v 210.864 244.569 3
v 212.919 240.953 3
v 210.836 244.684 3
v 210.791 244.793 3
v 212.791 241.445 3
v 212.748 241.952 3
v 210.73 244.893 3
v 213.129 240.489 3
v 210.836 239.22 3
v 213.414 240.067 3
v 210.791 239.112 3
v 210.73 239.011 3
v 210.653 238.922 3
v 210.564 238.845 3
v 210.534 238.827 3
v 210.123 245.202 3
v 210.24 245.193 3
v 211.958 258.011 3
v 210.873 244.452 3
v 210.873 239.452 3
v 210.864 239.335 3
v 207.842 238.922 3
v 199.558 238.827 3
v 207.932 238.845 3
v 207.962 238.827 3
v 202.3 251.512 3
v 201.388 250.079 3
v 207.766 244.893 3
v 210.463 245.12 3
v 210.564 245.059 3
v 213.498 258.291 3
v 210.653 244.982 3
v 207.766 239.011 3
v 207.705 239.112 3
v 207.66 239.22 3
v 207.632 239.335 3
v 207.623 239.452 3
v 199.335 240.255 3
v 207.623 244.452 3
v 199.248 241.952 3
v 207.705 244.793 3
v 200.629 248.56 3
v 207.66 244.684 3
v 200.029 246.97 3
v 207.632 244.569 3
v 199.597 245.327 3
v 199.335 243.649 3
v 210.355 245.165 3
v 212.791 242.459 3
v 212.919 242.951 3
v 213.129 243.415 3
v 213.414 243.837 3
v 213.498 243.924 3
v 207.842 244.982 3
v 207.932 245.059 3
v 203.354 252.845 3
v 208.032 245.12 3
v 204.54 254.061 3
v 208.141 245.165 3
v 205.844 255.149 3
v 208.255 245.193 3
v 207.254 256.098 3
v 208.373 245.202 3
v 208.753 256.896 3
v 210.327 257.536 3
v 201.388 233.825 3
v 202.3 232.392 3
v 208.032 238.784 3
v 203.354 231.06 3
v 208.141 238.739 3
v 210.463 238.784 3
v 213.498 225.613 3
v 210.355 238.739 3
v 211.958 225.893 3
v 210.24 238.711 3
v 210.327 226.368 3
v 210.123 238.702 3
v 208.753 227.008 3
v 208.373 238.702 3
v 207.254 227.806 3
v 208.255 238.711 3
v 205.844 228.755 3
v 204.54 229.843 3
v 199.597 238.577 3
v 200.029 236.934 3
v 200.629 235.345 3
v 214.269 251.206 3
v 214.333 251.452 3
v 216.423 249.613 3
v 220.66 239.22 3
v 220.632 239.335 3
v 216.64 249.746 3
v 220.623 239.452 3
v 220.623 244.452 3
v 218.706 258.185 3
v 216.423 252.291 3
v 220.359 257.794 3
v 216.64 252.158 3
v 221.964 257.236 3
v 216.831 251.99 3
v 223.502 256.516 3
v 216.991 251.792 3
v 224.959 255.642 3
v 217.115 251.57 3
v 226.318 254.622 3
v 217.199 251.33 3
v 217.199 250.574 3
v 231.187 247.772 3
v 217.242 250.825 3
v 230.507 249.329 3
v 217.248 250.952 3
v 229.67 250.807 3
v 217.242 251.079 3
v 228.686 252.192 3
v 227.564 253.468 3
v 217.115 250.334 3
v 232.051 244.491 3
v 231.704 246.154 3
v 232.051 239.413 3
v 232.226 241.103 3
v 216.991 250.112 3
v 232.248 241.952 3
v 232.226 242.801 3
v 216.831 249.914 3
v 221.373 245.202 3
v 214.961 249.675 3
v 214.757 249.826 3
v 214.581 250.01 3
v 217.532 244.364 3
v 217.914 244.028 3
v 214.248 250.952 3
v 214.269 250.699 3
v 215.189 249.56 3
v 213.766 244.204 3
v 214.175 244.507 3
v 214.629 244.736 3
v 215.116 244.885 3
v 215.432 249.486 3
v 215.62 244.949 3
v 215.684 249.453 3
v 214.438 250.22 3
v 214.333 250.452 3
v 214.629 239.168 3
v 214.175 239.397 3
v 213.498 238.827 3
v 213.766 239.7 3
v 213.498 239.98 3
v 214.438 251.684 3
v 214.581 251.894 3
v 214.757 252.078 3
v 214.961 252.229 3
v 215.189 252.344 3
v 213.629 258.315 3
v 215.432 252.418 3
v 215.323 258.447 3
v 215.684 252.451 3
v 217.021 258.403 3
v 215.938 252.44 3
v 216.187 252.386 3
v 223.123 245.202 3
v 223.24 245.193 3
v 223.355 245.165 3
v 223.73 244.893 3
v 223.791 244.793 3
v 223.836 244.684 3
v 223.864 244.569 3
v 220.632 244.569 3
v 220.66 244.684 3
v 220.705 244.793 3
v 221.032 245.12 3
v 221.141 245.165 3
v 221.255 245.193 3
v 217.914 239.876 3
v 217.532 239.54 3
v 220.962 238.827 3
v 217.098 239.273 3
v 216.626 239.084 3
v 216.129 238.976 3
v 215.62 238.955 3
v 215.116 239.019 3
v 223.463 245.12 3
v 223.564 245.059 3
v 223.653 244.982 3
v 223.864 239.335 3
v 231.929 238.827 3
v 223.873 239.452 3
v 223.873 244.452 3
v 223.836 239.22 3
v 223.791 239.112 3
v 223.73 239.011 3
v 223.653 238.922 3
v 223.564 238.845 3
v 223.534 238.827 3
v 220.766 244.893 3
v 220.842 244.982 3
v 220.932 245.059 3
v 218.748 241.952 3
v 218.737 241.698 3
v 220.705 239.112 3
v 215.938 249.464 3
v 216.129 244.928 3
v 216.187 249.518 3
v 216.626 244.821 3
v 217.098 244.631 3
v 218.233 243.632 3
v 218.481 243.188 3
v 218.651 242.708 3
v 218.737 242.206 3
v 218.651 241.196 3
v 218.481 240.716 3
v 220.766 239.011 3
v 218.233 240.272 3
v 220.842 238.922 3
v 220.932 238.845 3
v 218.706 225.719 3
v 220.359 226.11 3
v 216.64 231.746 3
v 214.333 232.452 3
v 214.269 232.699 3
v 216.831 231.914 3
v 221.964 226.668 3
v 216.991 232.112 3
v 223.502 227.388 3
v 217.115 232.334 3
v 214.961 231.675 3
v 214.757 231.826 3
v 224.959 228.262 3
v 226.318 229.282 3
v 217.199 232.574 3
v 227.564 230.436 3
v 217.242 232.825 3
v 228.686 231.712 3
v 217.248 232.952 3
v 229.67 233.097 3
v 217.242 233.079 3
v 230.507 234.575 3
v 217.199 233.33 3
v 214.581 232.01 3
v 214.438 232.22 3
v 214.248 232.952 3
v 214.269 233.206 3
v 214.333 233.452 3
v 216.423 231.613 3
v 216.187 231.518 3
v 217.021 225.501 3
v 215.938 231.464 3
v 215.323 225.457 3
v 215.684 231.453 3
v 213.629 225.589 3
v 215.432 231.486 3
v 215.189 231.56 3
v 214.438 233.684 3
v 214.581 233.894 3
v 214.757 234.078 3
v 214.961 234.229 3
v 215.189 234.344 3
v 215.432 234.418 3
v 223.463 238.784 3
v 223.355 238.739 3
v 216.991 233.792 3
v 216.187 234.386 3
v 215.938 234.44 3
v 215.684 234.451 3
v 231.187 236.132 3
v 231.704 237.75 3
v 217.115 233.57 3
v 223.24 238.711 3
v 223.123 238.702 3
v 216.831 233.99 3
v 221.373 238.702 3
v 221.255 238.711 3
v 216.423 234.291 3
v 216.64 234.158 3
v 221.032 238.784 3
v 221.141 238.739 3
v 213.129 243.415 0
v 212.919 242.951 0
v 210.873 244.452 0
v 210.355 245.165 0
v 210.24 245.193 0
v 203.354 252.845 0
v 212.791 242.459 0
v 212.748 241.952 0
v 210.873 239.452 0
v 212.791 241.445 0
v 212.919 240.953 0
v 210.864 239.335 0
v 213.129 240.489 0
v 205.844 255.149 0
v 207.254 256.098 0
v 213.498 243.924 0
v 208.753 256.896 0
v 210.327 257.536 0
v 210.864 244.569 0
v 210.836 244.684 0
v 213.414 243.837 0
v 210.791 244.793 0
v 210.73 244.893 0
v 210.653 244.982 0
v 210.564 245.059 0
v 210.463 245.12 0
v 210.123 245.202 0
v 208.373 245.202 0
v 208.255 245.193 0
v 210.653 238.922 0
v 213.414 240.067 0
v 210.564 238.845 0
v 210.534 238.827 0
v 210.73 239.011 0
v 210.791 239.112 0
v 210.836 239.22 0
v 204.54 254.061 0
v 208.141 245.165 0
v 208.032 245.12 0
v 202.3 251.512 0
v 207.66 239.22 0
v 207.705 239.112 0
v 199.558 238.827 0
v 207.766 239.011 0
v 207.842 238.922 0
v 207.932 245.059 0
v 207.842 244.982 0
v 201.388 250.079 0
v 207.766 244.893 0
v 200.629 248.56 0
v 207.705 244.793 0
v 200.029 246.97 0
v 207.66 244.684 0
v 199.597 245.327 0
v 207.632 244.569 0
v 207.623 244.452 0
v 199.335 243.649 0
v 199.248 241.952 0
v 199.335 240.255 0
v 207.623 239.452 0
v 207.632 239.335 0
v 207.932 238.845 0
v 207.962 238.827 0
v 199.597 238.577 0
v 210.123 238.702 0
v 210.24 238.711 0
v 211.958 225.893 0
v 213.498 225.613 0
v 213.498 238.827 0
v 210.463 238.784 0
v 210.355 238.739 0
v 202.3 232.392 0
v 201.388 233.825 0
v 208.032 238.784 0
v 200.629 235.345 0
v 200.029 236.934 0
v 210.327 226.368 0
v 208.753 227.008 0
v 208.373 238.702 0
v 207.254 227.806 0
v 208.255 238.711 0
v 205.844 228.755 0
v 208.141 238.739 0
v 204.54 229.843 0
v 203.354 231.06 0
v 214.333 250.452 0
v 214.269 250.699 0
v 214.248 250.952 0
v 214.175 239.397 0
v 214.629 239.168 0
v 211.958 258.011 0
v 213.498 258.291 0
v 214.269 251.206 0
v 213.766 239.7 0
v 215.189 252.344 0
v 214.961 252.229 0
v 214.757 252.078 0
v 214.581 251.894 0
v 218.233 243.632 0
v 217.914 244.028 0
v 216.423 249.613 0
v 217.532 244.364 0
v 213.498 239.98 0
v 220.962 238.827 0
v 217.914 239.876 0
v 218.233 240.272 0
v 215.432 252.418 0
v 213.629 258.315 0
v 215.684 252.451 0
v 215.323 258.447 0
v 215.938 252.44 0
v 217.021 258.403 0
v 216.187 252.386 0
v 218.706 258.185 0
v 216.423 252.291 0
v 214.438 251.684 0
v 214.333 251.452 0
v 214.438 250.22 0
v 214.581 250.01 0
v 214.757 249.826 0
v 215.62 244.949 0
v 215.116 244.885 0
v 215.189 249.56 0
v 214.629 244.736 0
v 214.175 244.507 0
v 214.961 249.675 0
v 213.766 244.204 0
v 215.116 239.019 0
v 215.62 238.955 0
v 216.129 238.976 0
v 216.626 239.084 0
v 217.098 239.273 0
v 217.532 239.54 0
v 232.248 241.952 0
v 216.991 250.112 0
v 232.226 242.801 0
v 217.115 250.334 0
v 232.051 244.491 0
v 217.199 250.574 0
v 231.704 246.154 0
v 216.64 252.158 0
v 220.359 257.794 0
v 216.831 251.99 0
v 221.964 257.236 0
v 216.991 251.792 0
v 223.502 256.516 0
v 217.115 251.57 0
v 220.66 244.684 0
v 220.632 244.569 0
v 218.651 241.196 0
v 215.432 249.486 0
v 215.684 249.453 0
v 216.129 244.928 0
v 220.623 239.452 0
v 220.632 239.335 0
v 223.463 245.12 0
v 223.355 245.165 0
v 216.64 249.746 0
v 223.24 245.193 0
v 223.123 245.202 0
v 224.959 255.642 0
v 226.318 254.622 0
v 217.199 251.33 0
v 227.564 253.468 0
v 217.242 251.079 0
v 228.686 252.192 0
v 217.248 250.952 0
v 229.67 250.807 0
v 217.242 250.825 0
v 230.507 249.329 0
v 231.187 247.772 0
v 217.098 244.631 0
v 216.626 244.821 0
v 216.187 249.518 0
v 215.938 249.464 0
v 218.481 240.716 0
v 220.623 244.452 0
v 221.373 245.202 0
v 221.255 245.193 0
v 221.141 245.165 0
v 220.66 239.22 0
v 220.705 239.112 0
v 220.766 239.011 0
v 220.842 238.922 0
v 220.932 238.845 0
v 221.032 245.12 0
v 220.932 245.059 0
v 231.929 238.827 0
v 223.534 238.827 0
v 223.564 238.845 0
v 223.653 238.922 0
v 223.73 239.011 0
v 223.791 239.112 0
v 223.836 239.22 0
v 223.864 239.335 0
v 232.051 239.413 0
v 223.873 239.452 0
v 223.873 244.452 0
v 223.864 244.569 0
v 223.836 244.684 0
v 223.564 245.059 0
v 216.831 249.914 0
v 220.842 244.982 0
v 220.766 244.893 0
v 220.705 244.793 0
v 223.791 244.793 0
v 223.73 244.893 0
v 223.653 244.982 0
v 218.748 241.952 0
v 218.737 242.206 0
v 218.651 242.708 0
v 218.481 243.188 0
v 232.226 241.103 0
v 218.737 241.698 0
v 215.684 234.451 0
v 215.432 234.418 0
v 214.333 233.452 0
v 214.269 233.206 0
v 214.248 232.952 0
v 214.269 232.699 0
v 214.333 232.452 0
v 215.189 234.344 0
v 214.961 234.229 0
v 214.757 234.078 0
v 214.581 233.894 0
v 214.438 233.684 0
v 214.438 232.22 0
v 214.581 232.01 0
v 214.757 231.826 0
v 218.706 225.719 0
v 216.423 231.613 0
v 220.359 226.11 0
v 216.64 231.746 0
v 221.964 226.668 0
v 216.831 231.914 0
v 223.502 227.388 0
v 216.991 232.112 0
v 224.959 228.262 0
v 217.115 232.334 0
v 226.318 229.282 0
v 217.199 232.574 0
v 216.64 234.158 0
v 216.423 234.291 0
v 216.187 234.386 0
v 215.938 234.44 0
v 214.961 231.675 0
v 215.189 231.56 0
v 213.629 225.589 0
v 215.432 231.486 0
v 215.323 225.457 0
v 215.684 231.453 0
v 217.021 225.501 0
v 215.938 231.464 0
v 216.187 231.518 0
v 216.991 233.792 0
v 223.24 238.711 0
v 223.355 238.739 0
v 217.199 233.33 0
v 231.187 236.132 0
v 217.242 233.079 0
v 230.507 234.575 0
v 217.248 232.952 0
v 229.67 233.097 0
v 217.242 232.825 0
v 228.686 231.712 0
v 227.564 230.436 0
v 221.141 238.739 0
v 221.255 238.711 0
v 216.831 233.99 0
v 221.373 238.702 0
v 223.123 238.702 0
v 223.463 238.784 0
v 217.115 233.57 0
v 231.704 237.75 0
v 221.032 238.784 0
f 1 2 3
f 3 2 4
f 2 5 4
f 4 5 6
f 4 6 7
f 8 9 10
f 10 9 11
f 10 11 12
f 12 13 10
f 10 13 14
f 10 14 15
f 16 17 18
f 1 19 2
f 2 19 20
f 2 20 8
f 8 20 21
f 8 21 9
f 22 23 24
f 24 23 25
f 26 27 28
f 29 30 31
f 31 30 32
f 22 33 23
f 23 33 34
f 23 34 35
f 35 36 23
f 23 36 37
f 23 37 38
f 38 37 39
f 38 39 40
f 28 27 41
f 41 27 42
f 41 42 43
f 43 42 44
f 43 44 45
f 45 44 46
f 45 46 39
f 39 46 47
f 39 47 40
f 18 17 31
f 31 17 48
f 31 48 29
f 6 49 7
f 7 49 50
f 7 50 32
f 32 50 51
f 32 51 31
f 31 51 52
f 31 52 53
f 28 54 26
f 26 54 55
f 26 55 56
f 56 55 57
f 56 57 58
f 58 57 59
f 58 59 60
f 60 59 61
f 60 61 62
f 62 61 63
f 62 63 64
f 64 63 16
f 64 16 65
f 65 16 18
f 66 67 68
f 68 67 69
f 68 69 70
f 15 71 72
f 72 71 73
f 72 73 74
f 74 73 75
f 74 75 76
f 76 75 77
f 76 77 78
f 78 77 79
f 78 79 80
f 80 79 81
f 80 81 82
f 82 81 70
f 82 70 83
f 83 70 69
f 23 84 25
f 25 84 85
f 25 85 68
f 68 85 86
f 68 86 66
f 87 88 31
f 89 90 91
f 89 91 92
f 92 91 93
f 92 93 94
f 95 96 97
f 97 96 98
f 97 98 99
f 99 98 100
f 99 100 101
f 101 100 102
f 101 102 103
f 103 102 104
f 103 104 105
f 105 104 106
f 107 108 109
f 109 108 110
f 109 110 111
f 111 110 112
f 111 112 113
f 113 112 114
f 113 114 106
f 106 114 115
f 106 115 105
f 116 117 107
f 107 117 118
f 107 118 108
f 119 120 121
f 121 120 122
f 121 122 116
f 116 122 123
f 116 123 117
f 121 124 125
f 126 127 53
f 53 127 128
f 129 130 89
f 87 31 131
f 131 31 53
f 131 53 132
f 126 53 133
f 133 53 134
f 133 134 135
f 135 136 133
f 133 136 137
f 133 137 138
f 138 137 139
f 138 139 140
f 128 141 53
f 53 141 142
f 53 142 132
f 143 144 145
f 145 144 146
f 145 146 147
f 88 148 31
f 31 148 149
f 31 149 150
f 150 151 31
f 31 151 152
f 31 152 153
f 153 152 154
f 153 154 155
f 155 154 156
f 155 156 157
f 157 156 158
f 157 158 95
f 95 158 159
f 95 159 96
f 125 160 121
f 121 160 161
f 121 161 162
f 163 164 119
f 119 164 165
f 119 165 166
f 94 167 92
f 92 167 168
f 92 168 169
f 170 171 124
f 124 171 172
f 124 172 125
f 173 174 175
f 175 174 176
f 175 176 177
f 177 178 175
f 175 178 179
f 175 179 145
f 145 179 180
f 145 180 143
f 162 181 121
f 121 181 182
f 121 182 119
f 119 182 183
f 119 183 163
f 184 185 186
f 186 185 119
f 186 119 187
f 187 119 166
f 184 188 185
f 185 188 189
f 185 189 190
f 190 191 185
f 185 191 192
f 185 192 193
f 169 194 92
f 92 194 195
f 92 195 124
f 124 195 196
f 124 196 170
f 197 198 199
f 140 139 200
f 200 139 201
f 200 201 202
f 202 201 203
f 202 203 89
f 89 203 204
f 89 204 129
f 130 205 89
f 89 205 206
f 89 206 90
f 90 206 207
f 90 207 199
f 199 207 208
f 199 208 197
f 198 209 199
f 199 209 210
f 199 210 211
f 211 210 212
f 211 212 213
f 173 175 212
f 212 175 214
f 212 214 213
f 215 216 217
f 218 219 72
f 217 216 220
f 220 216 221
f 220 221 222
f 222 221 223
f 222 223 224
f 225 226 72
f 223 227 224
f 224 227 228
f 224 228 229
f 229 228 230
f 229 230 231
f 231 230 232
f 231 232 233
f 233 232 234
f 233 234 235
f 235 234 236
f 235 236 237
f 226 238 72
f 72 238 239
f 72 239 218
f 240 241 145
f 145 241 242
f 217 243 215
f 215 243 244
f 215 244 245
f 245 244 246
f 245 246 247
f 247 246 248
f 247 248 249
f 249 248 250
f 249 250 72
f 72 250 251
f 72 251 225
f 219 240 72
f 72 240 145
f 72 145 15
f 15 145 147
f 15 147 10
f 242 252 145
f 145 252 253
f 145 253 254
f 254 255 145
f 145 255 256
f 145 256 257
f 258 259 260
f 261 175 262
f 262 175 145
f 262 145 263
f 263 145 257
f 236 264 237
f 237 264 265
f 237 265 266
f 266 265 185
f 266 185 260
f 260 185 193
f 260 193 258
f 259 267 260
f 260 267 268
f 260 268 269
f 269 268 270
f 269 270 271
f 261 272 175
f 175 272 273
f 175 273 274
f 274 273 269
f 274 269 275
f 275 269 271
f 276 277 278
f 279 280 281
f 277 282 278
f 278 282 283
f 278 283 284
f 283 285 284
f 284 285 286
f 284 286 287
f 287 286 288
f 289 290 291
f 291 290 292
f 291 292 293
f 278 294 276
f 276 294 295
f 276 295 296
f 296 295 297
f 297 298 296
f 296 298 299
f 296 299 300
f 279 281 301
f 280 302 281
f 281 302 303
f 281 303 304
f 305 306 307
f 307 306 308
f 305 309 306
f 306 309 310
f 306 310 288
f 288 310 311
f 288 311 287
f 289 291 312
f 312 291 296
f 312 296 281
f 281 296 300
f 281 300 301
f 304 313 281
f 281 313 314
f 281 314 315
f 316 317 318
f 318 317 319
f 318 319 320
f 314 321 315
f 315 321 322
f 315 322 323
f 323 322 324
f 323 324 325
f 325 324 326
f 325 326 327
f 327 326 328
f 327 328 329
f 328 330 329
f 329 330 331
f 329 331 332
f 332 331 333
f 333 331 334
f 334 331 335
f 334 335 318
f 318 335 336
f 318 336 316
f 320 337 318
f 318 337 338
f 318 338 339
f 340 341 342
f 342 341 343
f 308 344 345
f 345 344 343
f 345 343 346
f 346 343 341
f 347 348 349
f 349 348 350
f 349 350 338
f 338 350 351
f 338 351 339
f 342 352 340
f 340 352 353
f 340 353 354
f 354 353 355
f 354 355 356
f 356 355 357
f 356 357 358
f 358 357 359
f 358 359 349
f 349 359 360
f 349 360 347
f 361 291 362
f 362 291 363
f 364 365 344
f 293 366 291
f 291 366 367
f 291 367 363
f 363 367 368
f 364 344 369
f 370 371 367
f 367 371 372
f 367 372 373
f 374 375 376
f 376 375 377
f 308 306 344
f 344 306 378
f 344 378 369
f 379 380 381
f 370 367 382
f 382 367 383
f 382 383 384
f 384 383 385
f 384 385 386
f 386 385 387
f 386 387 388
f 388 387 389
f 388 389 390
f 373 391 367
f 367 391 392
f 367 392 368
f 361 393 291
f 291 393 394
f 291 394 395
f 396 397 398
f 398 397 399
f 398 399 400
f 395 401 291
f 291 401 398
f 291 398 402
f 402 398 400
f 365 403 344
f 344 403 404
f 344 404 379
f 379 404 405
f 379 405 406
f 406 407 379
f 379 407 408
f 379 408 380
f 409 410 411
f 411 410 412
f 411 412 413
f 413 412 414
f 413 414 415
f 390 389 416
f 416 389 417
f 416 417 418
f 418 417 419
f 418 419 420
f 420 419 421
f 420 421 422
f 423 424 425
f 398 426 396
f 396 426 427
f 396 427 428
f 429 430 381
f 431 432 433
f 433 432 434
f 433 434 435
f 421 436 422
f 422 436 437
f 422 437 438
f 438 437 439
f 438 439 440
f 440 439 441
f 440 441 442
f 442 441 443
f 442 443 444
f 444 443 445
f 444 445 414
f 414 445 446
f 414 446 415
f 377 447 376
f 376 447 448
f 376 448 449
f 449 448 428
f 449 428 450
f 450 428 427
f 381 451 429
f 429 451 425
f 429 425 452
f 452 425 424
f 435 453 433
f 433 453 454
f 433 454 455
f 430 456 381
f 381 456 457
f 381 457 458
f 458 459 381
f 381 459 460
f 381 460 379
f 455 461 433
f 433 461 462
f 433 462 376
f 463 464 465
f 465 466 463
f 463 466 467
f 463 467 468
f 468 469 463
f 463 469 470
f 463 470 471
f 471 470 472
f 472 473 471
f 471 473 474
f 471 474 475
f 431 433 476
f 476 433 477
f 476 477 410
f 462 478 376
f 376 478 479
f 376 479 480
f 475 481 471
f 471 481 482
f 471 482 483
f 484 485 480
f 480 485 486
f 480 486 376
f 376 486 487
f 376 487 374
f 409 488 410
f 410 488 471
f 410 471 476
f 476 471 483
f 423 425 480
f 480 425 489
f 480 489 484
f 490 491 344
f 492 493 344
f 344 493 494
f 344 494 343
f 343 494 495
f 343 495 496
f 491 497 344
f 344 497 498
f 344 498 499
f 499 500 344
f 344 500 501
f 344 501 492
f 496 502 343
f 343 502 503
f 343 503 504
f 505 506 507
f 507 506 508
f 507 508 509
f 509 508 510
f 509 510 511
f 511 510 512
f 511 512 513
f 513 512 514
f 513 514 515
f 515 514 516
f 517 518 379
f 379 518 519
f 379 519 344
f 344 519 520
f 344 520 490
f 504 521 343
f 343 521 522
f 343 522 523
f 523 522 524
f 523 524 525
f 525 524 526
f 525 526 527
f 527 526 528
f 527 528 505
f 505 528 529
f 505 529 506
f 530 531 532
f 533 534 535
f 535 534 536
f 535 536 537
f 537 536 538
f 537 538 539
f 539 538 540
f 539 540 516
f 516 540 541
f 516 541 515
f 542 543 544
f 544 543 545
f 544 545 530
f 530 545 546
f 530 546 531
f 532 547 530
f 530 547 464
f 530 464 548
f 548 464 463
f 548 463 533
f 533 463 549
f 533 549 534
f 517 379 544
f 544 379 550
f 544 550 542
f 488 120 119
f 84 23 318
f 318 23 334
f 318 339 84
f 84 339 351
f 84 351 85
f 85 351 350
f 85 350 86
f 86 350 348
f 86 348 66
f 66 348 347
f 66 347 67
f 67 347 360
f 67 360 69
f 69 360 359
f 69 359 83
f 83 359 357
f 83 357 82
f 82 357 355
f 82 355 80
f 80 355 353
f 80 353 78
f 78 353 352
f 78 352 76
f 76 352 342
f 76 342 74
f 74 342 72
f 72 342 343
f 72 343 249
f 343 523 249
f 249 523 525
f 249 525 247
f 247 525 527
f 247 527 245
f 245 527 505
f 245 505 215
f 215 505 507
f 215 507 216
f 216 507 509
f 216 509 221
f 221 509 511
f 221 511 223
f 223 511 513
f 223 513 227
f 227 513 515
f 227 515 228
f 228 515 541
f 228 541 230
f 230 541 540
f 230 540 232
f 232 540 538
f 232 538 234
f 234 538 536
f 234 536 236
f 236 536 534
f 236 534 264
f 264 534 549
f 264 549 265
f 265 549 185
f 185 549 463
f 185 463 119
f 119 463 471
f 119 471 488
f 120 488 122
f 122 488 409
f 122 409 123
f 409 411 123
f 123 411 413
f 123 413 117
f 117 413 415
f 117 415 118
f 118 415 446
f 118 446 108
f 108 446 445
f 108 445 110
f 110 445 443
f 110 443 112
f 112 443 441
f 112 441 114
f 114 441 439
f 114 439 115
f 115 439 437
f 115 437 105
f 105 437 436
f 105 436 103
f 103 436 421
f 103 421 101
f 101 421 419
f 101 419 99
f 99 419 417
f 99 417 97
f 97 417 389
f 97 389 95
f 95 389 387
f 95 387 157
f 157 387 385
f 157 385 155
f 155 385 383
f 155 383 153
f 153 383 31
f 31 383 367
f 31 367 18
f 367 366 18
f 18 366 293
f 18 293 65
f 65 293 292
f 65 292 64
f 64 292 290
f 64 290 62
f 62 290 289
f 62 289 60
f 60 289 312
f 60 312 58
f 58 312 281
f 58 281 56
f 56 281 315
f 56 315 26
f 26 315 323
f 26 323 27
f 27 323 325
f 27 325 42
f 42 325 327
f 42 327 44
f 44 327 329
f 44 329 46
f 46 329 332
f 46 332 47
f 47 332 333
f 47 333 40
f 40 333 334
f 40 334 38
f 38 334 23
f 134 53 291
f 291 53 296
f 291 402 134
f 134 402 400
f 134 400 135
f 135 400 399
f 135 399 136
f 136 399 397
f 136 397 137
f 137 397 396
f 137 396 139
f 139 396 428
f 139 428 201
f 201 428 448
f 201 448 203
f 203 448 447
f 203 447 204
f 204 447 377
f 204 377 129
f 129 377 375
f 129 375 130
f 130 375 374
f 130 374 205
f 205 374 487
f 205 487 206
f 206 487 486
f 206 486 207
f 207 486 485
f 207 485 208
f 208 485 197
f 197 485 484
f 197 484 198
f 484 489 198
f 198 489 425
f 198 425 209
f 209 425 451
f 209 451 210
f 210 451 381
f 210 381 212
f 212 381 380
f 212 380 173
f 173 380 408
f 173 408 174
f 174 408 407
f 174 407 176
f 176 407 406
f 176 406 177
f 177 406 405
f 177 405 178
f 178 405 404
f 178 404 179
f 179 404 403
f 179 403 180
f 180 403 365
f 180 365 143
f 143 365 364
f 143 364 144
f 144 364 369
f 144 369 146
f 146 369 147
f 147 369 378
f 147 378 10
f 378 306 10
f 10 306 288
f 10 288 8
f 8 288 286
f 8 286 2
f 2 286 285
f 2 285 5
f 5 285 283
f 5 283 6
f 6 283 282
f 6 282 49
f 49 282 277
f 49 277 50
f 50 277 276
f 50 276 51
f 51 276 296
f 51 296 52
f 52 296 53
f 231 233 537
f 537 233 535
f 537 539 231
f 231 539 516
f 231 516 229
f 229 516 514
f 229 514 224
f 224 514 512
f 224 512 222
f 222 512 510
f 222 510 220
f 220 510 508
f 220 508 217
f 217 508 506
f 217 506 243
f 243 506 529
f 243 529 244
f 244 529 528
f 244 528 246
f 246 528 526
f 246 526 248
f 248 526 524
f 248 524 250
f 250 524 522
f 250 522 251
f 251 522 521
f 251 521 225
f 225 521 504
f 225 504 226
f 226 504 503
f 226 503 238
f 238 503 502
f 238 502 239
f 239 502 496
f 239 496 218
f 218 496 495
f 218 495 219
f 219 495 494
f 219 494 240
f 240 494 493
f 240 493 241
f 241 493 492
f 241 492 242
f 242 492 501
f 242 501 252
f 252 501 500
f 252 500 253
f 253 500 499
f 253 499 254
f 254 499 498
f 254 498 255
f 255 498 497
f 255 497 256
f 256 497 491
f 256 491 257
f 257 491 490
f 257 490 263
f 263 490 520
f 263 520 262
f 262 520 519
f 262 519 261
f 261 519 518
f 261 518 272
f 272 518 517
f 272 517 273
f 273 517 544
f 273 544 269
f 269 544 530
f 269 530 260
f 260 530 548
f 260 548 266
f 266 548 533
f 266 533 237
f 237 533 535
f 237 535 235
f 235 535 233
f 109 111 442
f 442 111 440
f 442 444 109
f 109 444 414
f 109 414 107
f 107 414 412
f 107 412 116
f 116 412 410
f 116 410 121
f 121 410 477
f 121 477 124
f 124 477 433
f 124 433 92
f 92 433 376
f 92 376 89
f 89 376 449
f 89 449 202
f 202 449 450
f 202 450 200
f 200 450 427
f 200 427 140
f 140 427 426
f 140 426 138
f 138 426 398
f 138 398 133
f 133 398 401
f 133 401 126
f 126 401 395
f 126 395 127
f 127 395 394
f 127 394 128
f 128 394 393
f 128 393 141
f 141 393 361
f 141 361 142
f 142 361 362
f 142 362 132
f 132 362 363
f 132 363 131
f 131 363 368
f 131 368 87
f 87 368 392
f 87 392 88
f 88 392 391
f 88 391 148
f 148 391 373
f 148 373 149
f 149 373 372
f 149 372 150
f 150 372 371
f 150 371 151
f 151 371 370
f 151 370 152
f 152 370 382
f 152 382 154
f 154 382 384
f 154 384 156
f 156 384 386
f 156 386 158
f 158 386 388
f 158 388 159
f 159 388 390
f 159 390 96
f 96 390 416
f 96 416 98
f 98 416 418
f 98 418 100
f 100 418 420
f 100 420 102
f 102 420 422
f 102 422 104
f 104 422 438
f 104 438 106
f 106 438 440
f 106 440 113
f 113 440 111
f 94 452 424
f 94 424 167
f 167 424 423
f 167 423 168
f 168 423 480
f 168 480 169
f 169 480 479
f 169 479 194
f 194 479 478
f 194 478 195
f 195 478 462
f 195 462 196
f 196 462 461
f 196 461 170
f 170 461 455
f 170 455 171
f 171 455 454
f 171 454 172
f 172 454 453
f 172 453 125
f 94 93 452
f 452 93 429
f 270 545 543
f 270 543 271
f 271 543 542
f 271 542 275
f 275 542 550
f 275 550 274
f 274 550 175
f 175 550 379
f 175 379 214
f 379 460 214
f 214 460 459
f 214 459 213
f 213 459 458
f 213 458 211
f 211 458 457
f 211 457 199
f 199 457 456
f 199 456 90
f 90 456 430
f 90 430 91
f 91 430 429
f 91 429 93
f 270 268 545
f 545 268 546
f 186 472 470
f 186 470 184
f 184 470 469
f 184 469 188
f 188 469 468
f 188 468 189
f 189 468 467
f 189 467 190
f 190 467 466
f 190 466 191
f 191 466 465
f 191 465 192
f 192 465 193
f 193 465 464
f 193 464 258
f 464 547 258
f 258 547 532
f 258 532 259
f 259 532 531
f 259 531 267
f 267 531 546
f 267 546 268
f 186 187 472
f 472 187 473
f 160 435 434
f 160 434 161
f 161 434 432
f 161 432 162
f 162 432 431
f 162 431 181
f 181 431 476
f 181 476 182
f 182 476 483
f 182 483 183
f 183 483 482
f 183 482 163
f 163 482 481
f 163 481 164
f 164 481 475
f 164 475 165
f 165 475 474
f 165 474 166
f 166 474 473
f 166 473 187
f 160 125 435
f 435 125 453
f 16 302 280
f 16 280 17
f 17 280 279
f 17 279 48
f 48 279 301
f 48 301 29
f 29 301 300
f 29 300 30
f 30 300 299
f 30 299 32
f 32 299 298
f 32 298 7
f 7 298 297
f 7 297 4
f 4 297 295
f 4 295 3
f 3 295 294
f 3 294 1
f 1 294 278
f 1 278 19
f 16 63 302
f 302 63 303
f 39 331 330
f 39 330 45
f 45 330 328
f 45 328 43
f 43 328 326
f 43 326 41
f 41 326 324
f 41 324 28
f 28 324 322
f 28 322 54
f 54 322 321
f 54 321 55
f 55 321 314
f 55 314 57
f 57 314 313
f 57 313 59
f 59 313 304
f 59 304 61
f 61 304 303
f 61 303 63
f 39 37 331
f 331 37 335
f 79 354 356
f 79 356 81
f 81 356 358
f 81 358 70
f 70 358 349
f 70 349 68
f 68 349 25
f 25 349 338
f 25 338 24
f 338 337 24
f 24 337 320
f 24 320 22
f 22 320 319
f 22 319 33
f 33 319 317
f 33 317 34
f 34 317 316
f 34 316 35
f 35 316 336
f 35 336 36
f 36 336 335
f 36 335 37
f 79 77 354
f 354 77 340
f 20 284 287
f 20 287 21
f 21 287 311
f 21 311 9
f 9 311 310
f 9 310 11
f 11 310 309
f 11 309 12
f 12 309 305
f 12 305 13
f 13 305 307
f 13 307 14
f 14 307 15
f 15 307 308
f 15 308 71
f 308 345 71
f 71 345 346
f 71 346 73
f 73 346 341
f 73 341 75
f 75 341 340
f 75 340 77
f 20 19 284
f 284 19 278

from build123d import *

# Parameters (mm, degrees)
MODEL_R                 = 16.5
MODEL_R_2               = 3
MODEL_R_3               = 1.5
SALIENTE_EXTRUIR1_DEPTH = 3


with BuildPart() as part:
    # Model → Saliente-Extruir1 (new body)
    with BuildSketch(Plane.XY):
        with Locations((215.747807914, 241.952019993)):
            Circle(MODEL_R)
        with Locations((215.747807914, 241.952019993)):
            Circle(MODEL_R_2, mode=Mode.SUBTRACT)
        with Locations((215.747807914, 232.952019993)):
            Circle(MODEL_R_3, mode=Mode.SUBTRACT)
        with Locations((215.747807914, 250.952019993)):
            Circle(MODEL_R_3, mode=Mode.SUBTRACT)
        with BuildLine():
            Line((223.122807913, 245.202019993), (221.372807913, 245.202019993))
            ThreePointArc((221.372807913, 245.202019993), (220.842477828, 244.982350079), (220.622807913, 244.452019993))
            Line((220.622807913, 244.452019993), (220.622807913, 239.452019993))
            ThreePointArc((220.622807913, 239.452019993), (220.842477828, 238.921689907), (221.372807913, 238.702019993))
            Line((221.372807913, 238.702019993), (223.122807913, 238.702019993))
            ThreePointArc((223.122807913, 238.702019993), (223.653137999, 238.921689907), (223.872807913, 239.452019993))
            Line((223.872807913, 239.452019993), (223.872807913, 244.452019993))
            ThreePointArc((223.872807913, 244.452019993), (223.653137999, 244.982350079), (223.122807913, 245.202019993))
        make_face(mode=Mode.SUBTRACT)
        with BuildLine():
            Line((208.372807913, 245.202019993), (210.122807913, 245.202019993))
            ThreePointArc((210.122807913, 245.202019993), (210.653137999, 244.982350079), (210.872807913, 244.452019993))
            Line((210.872807913, 244.452019993), (210.872807913, 239.452019993))
            ThreePointArc((210.872807913, 239.452019993), (210.653137999, 238.921689907), (210.122807913, 238.702019993))
            Line((210.122807913, 238.702019993), (208.372807913, 238.702019993))
            ThreePointArc((208.372807913, 238.702019993), (207.842477828, 238.921689907), (207.622807913, 239.452019993))
            Line((207.622807913, 239.452019993), (207.622807913, 244.452019993))
            ThreePointArc((207.622807913, 244.452019993), (207.842477828, 244.982350079), (208.372807913, 245.202019993))
        make_face(mode=Mode.SUBTRACT)
    extrude(amount=SALIENTE_EXTRUIR1_DEPTH)


solid = part.part
